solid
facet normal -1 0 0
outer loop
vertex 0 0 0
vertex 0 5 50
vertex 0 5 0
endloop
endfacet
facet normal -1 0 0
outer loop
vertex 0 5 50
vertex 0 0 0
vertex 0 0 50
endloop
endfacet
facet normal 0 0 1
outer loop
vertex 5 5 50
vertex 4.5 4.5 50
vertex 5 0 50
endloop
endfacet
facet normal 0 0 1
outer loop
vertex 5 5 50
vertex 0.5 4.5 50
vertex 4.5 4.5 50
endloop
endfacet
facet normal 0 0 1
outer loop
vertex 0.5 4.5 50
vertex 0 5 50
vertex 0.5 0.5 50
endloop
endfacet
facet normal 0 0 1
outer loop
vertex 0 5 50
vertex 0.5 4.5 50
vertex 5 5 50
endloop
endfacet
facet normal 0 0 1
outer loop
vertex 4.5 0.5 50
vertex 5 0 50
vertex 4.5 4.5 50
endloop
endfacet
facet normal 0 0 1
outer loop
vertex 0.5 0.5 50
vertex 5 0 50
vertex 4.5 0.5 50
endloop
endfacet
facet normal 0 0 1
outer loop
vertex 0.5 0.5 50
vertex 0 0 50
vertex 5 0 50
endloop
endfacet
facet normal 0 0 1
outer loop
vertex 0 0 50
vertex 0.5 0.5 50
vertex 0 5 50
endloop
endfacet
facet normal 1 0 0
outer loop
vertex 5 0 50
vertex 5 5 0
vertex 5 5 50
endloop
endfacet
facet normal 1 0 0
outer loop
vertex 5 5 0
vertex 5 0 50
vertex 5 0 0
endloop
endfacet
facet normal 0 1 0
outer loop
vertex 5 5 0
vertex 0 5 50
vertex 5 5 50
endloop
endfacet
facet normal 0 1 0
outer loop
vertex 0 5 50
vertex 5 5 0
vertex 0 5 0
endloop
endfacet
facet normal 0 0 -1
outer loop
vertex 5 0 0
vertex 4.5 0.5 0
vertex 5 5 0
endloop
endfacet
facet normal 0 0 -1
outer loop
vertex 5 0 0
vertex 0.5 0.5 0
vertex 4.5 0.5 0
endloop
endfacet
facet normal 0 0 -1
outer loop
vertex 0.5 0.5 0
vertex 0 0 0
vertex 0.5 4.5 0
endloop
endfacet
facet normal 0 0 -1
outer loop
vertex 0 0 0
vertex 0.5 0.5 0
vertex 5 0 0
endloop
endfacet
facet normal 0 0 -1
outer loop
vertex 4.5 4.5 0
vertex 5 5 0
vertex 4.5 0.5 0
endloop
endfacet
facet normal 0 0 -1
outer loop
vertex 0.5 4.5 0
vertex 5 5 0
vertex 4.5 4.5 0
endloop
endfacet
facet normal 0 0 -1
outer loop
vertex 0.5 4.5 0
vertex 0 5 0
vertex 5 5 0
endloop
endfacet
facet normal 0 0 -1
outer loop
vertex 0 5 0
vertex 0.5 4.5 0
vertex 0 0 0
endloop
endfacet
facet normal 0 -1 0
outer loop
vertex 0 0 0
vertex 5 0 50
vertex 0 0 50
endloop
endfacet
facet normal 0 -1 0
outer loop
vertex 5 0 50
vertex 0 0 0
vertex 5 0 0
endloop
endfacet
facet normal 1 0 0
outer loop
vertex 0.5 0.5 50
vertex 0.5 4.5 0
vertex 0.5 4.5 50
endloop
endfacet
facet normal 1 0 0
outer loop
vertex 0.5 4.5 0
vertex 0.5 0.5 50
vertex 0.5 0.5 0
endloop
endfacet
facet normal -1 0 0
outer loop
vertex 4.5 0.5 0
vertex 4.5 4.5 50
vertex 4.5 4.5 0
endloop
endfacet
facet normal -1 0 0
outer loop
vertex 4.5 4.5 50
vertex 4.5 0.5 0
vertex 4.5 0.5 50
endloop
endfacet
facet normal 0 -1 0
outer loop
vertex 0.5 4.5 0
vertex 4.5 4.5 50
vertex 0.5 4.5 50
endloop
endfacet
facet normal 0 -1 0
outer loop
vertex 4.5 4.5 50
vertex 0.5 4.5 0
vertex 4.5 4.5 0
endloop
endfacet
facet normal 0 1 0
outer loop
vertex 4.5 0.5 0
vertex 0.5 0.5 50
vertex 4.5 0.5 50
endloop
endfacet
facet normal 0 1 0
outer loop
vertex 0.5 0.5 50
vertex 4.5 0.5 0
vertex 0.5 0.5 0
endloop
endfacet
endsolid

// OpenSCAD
difference() {
	cube(size = [5.0, 5.0, 50.0]);
	translate(v = [0.5, 0.5, -0.1]) {
		cube(size = [4.0, 4.0, 50.2]);
	}
}
